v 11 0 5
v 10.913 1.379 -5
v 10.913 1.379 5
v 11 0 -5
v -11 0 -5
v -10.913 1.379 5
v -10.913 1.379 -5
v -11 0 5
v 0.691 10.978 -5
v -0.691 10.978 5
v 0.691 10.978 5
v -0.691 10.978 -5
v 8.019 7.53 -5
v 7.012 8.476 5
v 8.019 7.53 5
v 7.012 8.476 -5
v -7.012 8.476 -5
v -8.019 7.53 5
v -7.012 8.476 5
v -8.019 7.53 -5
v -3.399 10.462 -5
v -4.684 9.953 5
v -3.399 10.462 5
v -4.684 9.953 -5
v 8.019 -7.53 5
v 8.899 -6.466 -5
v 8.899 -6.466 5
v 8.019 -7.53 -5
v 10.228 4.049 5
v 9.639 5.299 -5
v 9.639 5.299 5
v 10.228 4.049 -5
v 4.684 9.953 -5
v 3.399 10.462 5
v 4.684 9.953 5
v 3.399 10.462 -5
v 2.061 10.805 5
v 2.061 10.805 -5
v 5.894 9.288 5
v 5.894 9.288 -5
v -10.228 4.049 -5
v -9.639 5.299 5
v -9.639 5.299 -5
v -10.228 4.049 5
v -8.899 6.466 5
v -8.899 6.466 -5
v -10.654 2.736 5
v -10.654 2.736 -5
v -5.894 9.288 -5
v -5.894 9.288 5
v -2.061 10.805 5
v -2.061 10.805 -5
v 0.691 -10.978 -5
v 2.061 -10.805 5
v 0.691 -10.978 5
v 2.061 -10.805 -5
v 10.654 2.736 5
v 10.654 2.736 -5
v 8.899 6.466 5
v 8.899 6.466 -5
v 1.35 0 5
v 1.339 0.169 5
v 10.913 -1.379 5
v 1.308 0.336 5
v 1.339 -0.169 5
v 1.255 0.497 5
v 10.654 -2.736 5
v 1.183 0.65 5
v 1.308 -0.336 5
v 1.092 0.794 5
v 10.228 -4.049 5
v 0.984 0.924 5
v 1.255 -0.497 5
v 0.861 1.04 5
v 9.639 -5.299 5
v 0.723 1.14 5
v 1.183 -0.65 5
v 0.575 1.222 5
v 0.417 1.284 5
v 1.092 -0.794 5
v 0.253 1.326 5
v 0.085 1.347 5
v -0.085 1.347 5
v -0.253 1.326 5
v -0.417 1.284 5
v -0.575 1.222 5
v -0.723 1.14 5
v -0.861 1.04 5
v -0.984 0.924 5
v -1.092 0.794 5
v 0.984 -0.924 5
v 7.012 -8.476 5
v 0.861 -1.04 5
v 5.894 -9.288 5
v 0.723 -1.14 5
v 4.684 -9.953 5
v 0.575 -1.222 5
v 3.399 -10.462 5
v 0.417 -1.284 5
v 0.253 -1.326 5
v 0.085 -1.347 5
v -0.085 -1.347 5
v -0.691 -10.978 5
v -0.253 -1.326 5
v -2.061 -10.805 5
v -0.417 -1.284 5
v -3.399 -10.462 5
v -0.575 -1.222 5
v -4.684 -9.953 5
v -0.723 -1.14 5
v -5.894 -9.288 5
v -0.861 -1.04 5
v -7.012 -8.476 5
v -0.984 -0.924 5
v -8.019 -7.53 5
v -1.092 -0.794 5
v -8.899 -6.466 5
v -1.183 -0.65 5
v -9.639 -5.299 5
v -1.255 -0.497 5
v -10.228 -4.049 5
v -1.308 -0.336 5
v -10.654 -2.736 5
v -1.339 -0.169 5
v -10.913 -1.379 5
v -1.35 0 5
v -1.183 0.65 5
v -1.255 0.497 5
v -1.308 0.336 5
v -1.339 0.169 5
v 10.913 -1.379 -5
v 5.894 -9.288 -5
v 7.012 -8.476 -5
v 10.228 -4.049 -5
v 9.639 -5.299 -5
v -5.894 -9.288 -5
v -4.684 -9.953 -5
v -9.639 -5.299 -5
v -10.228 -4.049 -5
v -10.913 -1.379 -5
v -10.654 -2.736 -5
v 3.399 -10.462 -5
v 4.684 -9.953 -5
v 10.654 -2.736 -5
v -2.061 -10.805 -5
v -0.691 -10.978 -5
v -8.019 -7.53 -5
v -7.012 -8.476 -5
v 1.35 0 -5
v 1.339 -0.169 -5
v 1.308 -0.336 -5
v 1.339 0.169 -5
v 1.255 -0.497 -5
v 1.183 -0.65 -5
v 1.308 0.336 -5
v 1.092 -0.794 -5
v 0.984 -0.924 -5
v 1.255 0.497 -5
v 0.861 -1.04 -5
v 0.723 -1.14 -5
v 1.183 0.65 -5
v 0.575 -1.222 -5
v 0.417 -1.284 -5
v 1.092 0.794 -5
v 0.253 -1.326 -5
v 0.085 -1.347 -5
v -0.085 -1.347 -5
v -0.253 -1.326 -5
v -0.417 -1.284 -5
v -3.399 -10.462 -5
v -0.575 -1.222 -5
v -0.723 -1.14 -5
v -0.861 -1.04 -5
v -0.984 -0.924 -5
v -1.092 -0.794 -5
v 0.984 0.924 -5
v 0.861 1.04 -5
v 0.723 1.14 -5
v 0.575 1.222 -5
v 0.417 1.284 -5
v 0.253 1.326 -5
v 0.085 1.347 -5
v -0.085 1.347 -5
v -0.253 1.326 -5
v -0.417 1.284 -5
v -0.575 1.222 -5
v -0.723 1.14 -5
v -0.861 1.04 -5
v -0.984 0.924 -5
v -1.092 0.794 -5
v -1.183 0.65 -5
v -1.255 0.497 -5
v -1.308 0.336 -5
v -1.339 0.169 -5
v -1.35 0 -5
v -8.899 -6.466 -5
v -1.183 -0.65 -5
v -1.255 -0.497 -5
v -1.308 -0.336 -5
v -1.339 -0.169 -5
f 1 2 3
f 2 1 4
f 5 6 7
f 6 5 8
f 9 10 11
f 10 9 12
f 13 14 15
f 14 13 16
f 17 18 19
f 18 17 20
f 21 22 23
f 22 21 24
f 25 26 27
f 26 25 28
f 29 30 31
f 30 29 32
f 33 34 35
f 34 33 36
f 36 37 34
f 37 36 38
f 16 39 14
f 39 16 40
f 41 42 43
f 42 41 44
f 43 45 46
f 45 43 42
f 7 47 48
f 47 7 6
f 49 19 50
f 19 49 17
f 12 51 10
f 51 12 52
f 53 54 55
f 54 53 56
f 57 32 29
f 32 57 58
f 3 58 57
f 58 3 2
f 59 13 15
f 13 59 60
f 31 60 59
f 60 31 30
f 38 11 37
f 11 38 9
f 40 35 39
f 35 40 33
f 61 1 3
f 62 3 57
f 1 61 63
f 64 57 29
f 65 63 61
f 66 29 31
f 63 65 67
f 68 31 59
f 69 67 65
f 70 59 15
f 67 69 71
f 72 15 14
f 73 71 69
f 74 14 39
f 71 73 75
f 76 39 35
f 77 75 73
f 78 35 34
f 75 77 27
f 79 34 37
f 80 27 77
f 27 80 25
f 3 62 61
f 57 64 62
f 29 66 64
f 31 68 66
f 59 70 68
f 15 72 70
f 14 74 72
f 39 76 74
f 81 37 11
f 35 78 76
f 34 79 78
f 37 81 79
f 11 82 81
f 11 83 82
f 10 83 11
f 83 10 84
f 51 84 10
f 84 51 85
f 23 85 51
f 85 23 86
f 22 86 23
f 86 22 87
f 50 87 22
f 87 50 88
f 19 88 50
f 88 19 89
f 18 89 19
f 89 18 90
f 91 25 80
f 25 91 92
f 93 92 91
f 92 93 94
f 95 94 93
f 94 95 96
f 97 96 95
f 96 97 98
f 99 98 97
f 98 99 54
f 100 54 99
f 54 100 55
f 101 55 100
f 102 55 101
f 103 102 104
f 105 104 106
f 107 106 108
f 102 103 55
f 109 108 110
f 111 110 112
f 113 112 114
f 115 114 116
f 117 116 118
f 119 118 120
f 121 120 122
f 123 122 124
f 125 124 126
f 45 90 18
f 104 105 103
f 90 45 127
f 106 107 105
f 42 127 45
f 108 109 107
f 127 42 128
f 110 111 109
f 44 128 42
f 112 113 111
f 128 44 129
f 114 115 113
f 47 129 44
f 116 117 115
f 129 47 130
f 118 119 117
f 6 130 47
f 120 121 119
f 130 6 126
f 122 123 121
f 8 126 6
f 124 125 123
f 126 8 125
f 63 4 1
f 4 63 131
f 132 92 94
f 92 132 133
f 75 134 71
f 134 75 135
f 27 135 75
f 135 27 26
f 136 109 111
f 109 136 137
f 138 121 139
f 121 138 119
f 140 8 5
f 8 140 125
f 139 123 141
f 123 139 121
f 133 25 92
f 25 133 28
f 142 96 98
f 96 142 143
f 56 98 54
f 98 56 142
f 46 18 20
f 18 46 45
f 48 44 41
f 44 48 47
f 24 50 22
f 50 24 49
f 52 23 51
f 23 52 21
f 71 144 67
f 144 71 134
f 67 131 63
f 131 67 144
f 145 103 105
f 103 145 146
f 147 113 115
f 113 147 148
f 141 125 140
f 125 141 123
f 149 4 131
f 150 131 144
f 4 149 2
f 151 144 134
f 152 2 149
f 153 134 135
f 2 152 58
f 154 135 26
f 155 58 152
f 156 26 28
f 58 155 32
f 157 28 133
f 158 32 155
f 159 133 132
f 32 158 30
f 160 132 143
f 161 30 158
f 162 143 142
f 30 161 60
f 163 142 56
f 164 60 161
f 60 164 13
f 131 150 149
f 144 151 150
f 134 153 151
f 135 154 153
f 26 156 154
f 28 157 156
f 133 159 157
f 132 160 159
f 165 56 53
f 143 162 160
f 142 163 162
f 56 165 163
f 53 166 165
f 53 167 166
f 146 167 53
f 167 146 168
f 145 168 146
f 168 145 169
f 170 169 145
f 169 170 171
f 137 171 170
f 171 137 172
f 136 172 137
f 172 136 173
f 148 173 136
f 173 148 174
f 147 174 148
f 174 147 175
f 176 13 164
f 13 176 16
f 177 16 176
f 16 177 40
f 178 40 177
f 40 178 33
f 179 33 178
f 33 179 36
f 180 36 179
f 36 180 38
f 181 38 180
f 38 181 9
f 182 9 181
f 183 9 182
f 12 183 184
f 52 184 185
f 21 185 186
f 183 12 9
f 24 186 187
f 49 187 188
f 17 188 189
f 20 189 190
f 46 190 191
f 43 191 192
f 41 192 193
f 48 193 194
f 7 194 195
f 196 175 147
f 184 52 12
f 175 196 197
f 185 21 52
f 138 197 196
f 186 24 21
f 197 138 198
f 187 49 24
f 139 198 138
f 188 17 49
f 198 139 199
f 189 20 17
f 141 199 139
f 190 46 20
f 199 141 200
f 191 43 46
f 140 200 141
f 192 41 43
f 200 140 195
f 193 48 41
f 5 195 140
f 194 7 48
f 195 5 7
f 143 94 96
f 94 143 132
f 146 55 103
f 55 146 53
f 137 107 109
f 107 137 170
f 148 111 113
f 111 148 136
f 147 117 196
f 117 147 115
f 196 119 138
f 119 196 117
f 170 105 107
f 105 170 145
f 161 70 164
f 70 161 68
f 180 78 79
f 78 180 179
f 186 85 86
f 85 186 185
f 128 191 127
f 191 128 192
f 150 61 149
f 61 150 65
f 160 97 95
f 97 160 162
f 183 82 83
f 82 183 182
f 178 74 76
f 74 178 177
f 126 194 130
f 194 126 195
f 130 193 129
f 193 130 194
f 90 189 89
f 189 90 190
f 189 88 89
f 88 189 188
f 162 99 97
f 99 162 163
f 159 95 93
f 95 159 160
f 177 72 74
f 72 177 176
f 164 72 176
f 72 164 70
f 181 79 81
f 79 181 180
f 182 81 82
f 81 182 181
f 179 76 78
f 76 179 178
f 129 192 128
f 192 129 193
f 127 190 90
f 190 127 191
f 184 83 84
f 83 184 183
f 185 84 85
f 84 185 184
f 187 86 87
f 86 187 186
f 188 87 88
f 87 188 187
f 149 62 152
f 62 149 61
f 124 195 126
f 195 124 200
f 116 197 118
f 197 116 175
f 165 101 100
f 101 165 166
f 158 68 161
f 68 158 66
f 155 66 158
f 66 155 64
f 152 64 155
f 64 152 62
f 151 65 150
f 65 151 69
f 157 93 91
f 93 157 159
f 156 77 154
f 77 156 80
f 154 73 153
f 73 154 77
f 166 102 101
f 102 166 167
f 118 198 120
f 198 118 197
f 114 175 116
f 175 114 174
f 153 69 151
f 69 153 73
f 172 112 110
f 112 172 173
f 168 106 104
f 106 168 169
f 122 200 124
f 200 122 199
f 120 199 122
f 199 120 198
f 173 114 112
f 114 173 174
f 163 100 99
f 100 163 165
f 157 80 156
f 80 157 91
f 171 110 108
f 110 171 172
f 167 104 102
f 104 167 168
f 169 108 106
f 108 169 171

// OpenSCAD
$fn = 50;


difference() {
	union() {
		translate(v = [0, 0, -5.0000000000]) {
			cylinder(h = 10, r = 11.0000000000);
		}
	}
	union() {
		translate(v = [0, 0, -100.0000000000]) {
			cylinder(h = 200, r = 1.3500000000);
		}
	}
}
